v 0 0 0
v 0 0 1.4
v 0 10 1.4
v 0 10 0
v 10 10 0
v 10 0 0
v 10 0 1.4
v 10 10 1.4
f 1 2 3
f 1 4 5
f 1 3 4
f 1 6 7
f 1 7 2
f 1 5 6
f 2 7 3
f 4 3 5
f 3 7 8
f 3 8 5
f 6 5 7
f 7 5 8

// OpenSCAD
/* Warning, this is a very basic generator with a lot of approximation 
input data : [LFBGA, A9B, 10x10x1.4mm, 144, , B, C04-21116B]
generated by com.zoubworld.electronics.cad.model3d.Basic
Date : Sun Feb 15 10:50:49 CET 2026
*/

//body
color("black")
translate([0,0,0])
cube([10.0,10.0,1.4], center=false);
